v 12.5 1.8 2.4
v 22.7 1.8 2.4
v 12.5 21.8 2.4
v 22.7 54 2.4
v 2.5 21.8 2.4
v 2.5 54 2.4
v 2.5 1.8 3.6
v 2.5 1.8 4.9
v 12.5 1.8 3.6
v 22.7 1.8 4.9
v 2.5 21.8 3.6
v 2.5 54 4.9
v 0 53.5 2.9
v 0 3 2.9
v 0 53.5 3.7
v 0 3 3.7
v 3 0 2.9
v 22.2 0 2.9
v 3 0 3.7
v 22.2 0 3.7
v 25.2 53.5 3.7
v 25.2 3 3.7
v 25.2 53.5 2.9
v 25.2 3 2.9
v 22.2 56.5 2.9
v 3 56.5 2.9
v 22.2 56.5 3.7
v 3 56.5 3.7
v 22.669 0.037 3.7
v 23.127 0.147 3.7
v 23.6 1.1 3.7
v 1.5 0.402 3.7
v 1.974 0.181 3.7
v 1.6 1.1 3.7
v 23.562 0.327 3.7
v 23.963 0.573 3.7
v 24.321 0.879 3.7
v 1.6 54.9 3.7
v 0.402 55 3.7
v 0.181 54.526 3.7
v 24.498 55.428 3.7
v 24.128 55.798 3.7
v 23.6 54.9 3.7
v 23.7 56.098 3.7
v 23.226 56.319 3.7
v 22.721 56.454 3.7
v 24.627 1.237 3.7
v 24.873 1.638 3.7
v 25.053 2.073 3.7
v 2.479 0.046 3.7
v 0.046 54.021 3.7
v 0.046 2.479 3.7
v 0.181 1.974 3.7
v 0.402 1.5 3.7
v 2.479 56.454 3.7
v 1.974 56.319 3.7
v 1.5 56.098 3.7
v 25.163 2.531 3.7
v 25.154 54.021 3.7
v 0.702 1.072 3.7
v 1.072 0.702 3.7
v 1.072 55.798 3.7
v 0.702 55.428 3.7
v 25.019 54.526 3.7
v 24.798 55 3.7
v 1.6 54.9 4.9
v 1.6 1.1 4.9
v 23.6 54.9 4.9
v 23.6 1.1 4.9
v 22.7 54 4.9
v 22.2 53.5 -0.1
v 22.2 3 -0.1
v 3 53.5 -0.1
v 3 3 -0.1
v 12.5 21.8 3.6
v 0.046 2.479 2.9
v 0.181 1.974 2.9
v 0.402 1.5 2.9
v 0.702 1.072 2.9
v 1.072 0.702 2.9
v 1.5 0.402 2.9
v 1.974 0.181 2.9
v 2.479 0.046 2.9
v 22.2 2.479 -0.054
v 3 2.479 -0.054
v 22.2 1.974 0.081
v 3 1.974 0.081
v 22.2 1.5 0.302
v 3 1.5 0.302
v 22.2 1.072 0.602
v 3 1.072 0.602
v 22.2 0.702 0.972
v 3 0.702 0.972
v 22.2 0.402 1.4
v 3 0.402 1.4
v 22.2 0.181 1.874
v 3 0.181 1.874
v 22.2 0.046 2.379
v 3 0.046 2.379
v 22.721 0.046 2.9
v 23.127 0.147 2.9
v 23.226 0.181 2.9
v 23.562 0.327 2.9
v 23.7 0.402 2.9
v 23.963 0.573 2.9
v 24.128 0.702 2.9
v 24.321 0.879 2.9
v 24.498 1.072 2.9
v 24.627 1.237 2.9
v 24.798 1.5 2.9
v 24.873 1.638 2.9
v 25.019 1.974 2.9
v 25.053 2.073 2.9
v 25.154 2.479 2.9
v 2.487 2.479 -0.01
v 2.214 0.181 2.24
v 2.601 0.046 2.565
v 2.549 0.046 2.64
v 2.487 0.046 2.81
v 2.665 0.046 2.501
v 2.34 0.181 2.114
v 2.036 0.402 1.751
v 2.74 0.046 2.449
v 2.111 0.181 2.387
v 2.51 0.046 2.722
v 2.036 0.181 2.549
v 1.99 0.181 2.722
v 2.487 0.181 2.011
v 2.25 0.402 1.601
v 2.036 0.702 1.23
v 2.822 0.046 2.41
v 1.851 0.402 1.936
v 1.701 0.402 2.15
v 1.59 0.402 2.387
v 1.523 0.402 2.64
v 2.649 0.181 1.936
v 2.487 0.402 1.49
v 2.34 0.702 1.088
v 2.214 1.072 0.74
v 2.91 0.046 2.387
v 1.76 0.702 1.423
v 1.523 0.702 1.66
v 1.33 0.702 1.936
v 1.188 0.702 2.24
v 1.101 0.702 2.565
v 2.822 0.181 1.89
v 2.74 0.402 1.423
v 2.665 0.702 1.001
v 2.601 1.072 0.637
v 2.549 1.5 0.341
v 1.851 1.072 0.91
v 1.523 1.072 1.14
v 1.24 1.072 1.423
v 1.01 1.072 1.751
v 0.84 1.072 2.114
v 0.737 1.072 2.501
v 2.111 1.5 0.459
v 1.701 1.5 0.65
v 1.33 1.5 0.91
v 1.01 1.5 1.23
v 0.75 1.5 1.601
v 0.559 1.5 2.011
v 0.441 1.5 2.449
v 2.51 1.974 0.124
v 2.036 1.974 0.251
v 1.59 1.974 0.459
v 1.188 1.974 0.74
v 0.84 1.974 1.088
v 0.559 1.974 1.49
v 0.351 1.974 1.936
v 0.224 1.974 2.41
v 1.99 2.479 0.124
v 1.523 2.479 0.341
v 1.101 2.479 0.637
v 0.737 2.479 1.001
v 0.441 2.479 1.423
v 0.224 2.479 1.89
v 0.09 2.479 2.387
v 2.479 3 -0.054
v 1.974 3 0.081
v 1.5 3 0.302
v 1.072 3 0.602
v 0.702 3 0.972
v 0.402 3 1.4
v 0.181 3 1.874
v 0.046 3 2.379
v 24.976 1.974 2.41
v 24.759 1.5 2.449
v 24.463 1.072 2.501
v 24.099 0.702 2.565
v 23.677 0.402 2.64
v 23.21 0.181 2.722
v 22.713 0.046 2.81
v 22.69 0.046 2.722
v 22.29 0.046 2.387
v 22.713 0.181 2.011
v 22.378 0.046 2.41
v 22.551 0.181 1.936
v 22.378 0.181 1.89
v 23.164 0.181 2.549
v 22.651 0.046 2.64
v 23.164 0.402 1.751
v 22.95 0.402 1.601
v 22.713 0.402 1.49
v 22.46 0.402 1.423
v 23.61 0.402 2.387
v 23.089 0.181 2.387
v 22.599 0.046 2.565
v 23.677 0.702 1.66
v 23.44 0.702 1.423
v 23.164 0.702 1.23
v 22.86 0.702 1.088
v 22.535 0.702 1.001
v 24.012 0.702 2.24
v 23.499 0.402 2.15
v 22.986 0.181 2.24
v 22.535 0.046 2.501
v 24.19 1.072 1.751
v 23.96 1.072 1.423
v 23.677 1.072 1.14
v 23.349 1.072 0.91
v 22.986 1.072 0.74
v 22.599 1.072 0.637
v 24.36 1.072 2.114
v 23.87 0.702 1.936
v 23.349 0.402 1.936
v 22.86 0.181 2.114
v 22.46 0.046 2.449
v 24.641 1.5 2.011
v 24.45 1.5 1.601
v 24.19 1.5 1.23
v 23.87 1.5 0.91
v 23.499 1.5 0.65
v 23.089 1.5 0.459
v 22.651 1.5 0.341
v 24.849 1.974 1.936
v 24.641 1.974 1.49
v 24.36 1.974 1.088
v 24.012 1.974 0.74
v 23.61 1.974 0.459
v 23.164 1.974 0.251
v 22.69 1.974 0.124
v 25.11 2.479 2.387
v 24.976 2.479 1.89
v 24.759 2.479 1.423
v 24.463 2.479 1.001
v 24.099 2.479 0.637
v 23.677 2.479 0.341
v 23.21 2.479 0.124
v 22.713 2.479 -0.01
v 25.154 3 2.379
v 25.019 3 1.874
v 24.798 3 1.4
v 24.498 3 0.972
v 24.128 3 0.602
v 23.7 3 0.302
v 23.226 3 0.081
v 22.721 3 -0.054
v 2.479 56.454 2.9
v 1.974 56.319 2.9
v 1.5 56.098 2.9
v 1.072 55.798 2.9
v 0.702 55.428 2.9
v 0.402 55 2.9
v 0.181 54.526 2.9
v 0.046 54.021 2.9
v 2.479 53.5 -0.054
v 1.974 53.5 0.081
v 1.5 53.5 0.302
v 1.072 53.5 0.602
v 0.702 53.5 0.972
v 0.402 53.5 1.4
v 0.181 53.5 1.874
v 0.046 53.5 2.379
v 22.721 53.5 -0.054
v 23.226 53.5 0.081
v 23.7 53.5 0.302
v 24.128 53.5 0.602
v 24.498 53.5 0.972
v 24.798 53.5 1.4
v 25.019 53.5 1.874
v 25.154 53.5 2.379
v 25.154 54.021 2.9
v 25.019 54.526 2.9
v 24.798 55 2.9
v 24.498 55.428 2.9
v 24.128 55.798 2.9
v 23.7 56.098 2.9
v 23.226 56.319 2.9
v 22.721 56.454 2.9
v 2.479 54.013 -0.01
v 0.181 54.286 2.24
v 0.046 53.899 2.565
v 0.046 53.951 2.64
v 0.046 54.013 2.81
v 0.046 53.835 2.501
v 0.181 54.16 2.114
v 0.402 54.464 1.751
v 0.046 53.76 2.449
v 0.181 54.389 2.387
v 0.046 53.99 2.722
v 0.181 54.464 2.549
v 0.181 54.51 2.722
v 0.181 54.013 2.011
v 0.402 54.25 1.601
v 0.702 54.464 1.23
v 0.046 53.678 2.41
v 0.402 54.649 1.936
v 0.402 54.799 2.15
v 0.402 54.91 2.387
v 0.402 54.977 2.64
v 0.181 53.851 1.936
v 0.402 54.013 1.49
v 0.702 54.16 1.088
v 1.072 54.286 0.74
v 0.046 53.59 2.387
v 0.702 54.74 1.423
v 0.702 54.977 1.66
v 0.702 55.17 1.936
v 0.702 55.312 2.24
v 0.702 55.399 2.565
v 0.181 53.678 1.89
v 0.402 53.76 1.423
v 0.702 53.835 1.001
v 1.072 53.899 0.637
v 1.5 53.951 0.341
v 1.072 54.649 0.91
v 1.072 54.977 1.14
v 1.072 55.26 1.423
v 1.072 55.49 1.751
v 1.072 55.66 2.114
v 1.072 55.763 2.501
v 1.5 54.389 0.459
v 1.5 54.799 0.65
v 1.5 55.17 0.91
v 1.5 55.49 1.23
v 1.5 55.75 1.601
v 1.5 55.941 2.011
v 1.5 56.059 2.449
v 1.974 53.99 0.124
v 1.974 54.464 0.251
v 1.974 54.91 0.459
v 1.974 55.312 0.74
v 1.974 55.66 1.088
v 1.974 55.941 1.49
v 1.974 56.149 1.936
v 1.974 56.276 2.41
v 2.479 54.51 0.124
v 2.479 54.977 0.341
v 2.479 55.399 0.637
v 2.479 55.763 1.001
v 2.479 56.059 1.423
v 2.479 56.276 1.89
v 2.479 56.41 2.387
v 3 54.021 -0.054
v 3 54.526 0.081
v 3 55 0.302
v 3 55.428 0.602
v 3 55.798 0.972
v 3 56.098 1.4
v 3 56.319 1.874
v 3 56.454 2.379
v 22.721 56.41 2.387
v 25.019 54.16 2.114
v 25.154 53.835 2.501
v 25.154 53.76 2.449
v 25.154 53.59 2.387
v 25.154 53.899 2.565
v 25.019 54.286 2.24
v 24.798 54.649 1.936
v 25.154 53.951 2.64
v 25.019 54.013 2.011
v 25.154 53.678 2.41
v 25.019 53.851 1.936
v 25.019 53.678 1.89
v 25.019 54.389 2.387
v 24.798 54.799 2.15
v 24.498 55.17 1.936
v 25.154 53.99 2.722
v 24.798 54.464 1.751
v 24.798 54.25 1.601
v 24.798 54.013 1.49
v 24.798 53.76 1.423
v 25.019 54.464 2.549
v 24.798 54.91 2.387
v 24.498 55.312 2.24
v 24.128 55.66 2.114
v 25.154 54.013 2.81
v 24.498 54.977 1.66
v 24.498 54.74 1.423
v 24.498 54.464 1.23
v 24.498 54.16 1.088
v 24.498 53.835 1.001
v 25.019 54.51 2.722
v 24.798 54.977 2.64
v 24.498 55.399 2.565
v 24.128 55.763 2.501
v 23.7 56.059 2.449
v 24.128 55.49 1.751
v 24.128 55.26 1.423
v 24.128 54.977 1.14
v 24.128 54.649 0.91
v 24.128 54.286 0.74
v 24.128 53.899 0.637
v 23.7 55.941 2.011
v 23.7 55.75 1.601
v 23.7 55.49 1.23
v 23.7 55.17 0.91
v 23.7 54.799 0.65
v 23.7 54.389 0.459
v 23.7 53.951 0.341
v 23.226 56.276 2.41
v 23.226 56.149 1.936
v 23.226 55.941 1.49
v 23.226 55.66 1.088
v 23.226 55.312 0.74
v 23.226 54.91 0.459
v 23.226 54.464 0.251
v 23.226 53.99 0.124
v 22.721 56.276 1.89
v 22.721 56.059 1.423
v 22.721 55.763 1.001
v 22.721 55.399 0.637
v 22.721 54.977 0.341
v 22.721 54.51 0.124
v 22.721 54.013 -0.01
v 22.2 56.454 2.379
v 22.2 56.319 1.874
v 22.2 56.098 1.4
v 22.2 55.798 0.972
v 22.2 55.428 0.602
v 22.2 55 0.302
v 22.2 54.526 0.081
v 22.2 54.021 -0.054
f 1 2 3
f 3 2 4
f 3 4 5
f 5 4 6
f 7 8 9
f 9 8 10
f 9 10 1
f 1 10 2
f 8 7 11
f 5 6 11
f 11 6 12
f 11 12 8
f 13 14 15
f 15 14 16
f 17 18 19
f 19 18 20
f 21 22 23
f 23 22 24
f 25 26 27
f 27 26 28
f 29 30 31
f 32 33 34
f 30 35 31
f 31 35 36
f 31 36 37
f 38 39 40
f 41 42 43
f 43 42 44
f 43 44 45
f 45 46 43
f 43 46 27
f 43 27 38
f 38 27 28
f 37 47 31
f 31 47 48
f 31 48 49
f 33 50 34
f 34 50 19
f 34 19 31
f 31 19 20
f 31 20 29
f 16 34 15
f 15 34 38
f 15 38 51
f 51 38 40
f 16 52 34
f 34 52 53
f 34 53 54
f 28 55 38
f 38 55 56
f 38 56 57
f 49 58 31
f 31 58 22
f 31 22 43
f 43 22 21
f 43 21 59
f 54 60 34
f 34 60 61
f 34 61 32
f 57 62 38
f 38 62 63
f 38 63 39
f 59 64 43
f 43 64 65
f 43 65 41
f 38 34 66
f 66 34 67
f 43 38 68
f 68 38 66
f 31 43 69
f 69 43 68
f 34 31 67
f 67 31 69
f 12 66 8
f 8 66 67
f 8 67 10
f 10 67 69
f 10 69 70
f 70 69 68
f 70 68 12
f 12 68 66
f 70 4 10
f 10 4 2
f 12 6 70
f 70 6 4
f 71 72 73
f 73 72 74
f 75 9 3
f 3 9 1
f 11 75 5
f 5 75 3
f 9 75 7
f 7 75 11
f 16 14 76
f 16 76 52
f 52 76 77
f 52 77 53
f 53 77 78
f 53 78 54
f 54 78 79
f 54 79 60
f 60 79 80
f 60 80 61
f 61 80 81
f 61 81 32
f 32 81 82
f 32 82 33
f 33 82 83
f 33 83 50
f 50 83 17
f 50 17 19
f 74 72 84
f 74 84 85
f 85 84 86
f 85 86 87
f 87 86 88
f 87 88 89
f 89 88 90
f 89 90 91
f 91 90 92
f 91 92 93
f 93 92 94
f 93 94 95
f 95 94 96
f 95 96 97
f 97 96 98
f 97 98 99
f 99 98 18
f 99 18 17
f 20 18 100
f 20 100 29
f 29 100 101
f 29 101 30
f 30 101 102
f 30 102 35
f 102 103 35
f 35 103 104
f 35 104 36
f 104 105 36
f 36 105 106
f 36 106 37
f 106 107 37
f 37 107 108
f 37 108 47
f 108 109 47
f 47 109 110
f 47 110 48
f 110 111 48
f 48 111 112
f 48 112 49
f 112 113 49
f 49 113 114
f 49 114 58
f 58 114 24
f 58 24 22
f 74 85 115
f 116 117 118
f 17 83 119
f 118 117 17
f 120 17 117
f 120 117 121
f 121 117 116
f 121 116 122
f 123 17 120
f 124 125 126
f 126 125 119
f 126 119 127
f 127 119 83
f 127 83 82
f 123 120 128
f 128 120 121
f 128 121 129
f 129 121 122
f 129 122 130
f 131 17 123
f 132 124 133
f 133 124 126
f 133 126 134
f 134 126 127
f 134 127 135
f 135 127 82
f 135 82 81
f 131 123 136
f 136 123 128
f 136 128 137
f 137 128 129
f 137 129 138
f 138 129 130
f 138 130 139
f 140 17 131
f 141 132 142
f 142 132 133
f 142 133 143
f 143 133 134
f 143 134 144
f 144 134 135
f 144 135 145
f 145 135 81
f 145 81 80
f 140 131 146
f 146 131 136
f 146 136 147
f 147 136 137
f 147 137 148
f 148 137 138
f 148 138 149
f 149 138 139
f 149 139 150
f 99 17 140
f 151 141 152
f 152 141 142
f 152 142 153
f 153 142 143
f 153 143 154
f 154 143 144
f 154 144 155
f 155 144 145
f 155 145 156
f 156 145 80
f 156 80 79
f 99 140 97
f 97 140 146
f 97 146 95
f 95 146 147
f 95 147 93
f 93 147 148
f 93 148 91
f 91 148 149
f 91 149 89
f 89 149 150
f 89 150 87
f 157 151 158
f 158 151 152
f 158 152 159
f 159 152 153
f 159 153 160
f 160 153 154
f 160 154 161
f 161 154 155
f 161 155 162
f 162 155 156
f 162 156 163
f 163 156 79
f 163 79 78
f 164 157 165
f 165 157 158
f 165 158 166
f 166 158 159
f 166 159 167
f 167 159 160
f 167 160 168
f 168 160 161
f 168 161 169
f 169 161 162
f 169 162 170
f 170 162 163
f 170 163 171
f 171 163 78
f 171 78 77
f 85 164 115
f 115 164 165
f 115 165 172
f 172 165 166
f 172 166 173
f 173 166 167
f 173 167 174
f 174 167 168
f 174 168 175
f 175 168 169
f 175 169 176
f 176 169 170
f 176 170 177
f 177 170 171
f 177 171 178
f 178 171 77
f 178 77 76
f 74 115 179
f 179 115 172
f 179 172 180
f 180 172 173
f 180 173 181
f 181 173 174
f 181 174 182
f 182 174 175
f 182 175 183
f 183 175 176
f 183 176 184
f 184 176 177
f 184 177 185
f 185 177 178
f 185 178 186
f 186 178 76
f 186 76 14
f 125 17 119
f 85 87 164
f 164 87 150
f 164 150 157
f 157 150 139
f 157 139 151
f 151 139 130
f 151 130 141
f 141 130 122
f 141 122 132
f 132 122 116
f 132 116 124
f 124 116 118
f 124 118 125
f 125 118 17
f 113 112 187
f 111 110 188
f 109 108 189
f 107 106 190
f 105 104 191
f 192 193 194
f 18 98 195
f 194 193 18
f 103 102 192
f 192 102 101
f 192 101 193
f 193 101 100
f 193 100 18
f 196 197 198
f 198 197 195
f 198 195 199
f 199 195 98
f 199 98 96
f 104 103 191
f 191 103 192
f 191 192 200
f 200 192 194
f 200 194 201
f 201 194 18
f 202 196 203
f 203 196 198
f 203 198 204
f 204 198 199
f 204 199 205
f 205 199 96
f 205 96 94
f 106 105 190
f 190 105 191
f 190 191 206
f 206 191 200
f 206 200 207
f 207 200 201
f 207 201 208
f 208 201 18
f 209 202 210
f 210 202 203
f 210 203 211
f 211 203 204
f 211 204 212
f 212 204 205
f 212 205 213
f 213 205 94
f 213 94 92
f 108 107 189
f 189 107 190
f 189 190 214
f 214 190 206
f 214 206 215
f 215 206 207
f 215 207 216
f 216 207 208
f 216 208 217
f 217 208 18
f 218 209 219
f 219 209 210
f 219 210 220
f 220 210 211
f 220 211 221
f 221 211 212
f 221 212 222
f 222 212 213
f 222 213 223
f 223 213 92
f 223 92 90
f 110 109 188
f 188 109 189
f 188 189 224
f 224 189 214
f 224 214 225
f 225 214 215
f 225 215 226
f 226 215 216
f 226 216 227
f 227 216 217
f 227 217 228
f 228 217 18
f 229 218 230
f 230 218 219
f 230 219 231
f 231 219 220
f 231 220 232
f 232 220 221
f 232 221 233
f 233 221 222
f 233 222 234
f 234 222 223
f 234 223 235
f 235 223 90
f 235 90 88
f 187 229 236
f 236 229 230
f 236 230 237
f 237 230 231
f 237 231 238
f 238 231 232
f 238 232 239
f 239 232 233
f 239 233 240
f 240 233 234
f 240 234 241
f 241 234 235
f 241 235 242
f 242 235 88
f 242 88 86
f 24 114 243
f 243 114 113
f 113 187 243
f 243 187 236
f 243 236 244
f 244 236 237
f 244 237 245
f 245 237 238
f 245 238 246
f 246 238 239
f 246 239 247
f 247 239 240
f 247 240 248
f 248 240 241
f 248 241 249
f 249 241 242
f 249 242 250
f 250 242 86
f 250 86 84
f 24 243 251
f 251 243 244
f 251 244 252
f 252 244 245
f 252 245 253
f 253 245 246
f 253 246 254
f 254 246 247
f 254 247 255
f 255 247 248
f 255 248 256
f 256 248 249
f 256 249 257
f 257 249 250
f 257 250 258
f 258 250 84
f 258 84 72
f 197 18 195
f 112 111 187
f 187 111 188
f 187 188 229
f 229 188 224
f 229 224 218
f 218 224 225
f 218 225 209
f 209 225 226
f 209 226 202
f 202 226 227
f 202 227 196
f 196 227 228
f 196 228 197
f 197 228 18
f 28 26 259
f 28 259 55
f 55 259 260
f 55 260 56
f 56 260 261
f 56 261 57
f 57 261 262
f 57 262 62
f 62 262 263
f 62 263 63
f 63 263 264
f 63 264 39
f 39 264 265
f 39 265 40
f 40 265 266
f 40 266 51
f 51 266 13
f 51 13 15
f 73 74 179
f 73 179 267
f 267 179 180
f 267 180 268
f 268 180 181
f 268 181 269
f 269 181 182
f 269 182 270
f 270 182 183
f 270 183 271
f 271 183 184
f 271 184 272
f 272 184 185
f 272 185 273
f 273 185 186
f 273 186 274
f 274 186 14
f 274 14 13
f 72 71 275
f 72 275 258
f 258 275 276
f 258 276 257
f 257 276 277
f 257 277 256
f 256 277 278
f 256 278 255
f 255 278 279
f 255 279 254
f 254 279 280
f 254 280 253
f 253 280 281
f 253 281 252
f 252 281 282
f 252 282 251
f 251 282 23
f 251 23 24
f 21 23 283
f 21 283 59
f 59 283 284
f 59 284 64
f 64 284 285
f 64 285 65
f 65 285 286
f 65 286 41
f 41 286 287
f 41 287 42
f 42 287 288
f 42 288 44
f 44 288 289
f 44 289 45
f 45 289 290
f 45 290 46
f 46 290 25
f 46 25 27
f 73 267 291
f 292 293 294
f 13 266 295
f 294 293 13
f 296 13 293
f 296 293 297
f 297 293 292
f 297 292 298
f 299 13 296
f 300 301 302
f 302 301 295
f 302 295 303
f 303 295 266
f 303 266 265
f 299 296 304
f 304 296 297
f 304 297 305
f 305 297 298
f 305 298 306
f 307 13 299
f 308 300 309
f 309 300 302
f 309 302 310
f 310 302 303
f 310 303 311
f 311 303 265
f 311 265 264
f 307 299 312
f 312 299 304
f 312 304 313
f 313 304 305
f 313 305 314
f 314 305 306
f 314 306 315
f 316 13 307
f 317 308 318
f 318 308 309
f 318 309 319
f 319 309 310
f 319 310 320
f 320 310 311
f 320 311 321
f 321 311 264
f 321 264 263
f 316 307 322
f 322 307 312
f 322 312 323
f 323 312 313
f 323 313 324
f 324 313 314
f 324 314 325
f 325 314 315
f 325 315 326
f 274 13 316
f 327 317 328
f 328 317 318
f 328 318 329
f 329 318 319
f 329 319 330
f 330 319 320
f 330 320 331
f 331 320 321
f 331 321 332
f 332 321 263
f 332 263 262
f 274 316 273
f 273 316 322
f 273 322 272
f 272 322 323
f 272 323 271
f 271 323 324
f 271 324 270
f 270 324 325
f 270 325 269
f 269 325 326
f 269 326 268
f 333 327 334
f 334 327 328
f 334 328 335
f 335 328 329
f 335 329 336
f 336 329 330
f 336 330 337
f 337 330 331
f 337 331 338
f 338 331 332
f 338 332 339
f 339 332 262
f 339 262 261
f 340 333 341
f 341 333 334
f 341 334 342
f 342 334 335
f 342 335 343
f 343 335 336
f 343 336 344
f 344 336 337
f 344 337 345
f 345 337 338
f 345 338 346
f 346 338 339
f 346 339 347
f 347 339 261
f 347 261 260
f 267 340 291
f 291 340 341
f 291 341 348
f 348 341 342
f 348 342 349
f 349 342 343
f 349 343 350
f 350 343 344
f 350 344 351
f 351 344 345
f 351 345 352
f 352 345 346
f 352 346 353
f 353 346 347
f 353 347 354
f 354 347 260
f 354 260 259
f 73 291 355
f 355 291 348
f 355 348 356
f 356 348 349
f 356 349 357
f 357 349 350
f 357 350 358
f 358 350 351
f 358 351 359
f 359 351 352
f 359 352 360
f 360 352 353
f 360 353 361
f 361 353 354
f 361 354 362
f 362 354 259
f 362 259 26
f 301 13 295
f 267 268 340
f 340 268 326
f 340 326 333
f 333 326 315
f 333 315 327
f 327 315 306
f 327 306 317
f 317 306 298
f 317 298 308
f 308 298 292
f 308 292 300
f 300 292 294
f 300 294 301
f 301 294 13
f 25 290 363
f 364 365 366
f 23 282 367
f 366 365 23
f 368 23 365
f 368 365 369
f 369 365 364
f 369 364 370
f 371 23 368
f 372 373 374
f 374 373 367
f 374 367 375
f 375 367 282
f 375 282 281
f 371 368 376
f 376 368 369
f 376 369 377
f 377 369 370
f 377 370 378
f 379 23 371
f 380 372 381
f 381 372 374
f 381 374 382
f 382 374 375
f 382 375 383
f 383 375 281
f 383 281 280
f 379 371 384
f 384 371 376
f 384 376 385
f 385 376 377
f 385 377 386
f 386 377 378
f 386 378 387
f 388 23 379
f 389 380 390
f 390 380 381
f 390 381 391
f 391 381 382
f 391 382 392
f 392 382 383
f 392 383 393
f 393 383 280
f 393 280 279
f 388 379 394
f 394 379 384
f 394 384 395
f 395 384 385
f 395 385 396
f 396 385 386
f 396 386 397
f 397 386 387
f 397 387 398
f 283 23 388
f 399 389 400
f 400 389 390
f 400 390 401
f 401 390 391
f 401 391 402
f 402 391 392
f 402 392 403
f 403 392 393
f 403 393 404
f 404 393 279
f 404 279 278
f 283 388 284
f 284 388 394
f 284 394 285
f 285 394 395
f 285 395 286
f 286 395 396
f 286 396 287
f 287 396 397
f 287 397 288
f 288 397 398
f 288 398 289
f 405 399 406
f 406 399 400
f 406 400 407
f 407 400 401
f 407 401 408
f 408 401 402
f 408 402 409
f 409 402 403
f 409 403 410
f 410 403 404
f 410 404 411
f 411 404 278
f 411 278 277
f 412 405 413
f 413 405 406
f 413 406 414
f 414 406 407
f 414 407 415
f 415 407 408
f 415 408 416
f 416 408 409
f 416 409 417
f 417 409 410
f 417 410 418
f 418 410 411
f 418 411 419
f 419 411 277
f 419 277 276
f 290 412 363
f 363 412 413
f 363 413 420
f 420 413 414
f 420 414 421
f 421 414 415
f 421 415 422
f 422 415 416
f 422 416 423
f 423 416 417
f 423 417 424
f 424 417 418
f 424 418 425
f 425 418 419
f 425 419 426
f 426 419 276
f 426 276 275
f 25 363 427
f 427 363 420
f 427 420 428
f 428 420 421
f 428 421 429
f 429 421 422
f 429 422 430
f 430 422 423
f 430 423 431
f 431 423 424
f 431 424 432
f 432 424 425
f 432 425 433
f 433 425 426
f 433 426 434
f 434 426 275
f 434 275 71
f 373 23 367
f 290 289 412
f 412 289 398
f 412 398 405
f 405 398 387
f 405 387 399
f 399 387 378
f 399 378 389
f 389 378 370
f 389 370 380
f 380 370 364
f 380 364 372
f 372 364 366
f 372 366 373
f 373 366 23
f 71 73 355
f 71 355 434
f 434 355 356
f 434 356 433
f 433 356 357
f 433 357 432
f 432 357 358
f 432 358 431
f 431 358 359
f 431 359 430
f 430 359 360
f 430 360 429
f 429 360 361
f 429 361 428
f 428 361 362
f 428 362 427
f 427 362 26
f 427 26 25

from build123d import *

# Parameters (mm, degrees)
SKETCH_1_W          = 25.2
SKETCH_1_H          = 56.5
EXTRUDE_1_DEPTH     = 5
SKETCH_2_W          = 25.2
SKETCH_2_H          = 56.5
SKETCH_2_W_2        = 22
SKETCH_2_H_2        = 53.8
CUT_EXTRUDE_1_DEPTH = 1.3
SKETCH_3_W          = 20.2
SKETCH_3_H          = 52.2
CUT_EXTRUDE_2_DEPTH = 2.6
SKETCH_4_W          = 0.1
SKETCH_4_H          = 53.8
CUT_EXTRUDE_3_DEPTH = 62.434599372
SKETCH_5_W          = 25.2
SKETCH_5_H          = 56.5
EXTRUDE_2_DEPTH     = 0.1
SKETCH_6_W          = 10
SKETCH_6_H          = 20
EXTRUDE_3_DEPTH     = 1.2
FILLET_1_R          = 3


with BuildPart() as part:
    # Эскиз1 → Бобышка-Вытянуть1 (new body)
    with BuildSketch(Plane.XY):
        with Locations((12.6, 28.25)):
            Rectangle(SKETCH_1_W, SKETCH_1_H)
    extrude(amount=EXTRUDE_1_DEPTH)

    # Эскиз2 → Вырез-Вытянуть1 (cut)
    with BuildSketch(Plane.XY.offset(5)):
        with Locations((12.6, 28.25)):
            Rectangle(SKETCH_2_W, SKETCH_2_H)
        with Locations((12.6, 28)):
            Rectangle(SKETCH_2_W_2, SKETCH_2_H_2, mode=Mode.SUBTRACT)
    extrude(amount=-CUT_EXTRUDE_1_DEPTH, mode=Mode.SUBTRACT)

    # Эскиз3 → Вырез-Вытянуть2 (cut)
    with BuildSketch(Plane.XY.offset(5)):
        with Locations((12.6, 27.9)):
            Rectangle(SKETCH_3_W, SKETCH_3_H)
    extrude(amount=-CUT_EXTRUDE_2_DEPTH, mode=Mode.SUBTRACT)

    # Эскиз4 → Вырез-Вытянуть3 (cut, through all)
    with BuildSketch(Plane.ZY.offset(-1.6)):
        with Locations((4.95, 28)):
            Rectangle(SKETCH_4_W, SKETCH_4_H)
    extrude(amount=-CUT_EXTRUDE_3_DEPTH, mode=Mode.SUBTRACT)

    # Эскиз5 → Бобышка-Вытянуть2 (add)
    with BuildSketch(Plane(origin=(0, 0, 0), x_dir=(-1, 0, 0), z_dir=(0, 0, -1))):
        with Locations((-12.6, 28.25)):
            Rectangle(SKETCH_5_W, SKETCH_5_H)
    extrude(amount=EXTRUDE_2_DEPTH)

    # Эскиз6 → Бобышка-Вытянуть3 (add)
    with BuildSketch(Plane.XY.offset(2.4)):
        with Locations((7.5, 11.8)):
            Rectangle(SKETCH_6_W, SKETCH_6_H)
    extrude(amount=EXTRUDE_3_DEPTH)

    # Скругление1
    fillet_1_edges = [part.edges().sort_by_distance(p)[0] for p in [
        (0, 56.5, 1.8),
        (25.2, 56.5, 1.8),
        (25.2, 0, 1.8),
        (0, 0, 1.8),
        (25.2, 28.25, -0.1),
        (12.6, 0, -0.1),
        (0, 28.25, -0.1),
        (12.6, 56.5, -0.1),
    ]]
    fillet(fillet_1_edges, radius=FILLET_1_R)


solid = part.part
